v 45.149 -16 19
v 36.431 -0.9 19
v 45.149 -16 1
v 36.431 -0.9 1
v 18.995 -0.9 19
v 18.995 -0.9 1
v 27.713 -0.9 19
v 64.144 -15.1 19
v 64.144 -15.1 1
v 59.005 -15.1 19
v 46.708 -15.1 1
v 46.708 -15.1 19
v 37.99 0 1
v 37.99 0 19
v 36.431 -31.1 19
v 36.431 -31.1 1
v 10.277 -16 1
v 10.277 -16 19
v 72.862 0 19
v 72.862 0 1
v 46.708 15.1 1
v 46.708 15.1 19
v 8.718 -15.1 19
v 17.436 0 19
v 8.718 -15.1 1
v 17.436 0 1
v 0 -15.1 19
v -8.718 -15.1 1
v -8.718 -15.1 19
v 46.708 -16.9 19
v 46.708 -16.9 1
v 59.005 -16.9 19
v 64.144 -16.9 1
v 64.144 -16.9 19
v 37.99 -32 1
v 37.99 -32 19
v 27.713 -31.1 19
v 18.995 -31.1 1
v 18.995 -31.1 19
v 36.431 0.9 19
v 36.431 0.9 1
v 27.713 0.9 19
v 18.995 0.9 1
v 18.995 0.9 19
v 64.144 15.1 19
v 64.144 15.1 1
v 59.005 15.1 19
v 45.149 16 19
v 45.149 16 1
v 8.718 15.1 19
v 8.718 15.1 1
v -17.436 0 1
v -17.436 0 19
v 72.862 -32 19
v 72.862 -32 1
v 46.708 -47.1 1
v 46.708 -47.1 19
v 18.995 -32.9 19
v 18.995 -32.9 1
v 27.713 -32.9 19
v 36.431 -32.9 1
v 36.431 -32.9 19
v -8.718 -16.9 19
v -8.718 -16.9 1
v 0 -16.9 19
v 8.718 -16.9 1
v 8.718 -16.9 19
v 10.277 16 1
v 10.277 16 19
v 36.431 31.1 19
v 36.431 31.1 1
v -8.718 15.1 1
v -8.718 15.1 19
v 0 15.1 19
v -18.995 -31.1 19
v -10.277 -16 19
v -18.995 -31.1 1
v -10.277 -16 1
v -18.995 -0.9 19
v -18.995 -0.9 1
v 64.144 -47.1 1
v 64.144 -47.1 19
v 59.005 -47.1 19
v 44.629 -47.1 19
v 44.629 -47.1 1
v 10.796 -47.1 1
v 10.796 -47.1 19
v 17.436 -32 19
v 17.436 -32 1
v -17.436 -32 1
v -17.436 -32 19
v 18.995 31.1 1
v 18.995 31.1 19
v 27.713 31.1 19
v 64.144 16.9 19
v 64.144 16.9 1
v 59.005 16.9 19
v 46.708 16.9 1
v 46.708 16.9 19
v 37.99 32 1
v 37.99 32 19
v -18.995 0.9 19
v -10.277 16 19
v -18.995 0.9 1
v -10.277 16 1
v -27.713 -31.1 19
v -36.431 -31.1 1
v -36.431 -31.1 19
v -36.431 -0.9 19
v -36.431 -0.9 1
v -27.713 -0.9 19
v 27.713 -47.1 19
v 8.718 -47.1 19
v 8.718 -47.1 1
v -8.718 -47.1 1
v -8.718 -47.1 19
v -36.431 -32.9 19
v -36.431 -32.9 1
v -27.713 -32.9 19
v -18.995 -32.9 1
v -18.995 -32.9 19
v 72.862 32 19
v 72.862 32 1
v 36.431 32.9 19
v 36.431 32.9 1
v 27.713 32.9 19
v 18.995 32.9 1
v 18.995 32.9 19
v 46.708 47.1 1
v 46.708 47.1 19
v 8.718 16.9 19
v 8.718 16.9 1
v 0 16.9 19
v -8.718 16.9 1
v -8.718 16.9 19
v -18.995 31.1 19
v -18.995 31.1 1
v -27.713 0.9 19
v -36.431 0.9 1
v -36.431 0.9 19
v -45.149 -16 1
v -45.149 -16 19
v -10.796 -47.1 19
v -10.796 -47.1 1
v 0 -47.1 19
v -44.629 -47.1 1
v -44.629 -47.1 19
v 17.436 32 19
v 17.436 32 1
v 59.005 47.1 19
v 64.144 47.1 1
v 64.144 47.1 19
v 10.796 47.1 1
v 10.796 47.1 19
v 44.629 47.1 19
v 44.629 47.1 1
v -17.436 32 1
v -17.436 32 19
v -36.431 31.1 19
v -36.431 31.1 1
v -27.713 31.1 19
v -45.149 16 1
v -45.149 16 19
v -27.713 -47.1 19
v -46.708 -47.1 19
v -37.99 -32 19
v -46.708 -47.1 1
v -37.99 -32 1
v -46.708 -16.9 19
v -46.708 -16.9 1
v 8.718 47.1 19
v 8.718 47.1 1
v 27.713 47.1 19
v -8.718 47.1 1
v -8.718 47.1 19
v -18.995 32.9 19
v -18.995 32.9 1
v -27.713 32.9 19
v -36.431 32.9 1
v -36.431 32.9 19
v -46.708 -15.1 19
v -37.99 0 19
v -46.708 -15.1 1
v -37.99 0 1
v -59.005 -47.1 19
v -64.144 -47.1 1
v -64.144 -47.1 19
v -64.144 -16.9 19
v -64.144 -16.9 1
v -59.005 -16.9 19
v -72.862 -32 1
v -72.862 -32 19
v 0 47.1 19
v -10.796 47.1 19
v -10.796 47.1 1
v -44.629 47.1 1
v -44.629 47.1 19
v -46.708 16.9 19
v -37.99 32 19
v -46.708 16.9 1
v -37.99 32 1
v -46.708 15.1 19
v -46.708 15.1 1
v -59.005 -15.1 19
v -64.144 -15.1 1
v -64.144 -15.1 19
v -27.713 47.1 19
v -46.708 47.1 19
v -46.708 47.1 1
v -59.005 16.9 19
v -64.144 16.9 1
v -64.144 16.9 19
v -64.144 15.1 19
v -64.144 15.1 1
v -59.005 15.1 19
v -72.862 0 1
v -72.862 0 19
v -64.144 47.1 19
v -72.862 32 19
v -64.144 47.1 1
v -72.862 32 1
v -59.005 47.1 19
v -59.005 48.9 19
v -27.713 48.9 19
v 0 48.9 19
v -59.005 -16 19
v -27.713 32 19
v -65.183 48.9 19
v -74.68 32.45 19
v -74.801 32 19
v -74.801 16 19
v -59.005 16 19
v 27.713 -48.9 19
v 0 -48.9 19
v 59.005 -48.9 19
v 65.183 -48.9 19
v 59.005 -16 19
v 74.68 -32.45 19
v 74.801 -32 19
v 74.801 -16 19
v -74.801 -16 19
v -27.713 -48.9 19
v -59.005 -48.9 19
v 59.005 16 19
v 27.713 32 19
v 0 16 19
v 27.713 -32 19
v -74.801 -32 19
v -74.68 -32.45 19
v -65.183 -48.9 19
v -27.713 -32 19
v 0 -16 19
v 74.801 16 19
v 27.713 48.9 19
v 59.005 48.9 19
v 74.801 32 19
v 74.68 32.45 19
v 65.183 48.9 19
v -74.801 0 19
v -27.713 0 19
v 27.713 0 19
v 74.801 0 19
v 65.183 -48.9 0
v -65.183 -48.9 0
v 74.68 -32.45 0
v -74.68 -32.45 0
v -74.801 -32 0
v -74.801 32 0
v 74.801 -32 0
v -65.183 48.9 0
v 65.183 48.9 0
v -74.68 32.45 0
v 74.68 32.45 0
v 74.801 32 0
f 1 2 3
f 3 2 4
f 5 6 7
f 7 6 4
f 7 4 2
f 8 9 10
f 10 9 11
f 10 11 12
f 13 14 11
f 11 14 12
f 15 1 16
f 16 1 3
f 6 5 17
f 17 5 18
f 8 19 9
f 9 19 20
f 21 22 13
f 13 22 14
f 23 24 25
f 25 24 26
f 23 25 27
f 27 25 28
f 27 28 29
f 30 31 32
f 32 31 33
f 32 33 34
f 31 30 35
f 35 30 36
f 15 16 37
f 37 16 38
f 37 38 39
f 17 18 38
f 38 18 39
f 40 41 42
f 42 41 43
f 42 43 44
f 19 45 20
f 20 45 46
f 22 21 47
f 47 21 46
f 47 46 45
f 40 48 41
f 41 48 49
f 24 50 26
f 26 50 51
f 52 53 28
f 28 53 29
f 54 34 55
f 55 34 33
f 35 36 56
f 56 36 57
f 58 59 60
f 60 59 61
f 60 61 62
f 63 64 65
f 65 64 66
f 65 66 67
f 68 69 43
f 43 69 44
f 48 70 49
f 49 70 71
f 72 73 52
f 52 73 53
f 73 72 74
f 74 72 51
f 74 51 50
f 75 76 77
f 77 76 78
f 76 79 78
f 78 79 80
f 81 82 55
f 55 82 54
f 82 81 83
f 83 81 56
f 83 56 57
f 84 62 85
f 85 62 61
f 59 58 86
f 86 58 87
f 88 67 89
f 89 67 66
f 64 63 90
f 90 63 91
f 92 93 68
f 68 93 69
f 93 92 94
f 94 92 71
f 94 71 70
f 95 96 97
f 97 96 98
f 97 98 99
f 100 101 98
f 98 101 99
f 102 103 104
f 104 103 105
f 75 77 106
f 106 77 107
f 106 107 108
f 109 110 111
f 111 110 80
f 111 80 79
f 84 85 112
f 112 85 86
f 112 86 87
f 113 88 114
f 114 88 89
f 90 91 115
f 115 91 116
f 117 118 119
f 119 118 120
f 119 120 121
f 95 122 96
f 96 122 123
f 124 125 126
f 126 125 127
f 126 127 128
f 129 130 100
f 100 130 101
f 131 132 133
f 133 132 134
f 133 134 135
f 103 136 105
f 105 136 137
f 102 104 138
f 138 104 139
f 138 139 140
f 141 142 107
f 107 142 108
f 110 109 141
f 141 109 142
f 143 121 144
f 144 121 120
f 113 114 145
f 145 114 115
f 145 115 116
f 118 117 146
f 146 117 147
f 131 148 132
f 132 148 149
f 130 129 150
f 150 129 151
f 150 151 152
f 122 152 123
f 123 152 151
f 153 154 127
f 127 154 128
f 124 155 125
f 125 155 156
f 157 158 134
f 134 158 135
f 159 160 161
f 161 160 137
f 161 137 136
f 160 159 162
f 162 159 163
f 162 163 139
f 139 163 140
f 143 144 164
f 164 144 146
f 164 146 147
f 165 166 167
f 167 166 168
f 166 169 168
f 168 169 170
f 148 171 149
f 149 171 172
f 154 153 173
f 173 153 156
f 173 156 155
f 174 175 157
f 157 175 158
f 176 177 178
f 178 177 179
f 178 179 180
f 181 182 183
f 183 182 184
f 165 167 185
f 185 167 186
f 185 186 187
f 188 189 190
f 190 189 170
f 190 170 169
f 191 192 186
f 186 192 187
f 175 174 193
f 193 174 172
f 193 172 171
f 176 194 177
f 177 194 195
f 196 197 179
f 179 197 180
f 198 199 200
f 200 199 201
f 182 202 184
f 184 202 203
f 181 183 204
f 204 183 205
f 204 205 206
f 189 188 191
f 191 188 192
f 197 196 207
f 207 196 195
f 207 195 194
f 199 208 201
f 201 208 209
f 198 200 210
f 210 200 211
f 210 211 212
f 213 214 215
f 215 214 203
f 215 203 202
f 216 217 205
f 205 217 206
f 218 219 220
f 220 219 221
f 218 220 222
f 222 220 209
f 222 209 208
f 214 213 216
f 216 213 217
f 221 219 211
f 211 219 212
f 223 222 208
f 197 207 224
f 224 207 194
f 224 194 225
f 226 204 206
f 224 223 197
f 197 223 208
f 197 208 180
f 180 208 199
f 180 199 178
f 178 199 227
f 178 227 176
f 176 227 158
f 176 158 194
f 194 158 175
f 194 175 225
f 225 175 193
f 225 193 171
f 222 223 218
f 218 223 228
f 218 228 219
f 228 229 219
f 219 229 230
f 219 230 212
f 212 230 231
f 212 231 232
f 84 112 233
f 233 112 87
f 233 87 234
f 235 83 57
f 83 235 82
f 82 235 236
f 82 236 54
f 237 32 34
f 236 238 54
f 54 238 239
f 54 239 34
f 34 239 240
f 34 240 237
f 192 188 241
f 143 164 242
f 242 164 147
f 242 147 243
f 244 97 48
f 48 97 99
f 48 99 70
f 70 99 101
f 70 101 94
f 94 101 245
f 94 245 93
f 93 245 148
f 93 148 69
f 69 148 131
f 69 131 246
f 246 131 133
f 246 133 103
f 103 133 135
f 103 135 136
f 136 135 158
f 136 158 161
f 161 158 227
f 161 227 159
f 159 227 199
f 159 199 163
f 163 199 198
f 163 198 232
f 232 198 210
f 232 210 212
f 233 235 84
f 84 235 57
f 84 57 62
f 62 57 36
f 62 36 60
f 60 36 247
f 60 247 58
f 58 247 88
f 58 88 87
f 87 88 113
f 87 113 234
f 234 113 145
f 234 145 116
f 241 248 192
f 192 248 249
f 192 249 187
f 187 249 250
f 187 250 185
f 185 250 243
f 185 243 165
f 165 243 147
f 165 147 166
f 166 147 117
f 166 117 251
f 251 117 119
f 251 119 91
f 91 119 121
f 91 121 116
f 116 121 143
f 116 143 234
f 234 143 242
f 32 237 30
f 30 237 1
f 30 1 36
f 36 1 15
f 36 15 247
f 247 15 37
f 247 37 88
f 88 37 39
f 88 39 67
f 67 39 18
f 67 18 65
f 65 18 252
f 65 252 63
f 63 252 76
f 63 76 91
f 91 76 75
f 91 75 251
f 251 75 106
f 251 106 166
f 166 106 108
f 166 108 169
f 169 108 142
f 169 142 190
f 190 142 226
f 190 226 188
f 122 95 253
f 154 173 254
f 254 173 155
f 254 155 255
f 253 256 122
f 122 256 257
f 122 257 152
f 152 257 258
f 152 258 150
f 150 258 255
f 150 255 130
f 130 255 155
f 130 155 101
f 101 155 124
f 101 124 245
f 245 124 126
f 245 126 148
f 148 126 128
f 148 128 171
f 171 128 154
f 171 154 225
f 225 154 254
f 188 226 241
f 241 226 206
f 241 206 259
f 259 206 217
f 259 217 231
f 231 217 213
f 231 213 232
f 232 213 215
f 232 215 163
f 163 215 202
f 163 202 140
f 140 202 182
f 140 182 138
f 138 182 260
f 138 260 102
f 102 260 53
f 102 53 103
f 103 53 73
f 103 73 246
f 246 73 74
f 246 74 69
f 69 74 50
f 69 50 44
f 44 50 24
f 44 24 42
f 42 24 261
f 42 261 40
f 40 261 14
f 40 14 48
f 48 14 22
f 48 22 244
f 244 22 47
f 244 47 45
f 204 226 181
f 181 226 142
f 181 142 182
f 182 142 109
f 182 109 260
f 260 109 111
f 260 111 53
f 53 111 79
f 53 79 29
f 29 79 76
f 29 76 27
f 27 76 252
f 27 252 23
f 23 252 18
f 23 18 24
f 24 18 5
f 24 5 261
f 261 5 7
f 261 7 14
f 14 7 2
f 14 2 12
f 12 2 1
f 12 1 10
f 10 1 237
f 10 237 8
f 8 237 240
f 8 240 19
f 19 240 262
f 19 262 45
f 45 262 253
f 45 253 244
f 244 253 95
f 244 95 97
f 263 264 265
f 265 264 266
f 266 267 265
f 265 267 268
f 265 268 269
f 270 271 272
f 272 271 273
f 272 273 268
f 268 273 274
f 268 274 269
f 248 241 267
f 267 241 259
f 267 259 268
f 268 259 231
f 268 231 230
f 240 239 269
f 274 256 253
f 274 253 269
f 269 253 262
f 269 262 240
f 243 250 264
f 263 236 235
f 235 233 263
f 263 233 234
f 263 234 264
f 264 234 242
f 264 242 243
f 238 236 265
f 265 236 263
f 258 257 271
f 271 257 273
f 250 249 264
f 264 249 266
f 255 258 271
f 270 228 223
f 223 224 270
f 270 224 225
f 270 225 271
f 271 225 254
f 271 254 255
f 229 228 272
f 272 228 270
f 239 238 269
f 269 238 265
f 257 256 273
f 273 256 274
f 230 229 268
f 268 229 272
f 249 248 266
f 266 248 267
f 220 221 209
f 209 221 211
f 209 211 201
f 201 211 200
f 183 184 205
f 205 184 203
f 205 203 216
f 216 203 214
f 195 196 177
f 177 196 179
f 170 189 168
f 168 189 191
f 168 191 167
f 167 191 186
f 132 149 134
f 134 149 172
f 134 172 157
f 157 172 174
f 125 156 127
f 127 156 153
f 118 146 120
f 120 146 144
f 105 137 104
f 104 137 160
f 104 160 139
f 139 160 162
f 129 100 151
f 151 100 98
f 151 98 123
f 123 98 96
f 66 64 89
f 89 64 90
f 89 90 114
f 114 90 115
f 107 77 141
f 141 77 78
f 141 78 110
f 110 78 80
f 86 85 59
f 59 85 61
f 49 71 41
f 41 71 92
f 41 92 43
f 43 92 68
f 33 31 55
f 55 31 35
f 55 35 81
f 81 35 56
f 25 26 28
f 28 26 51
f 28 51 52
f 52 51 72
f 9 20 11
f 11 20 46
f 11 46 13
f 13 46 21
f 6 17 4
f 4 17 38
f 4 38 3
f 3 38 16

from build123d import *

# Parameters (mm, degrees)
EXTRUDE_THIN2_DEPTH = 19
BOSS_EXTRUDE1_DEPTH = 19
BOSS_EXTRUDE2_DEPTH = 1
BOSS_EXTRUDE4_DEPTH = 18


# Read off the part's stored shape, not the designer's step: Extrude-Thin2
with BuildPart() as part:
    # Extrude-Thin2 outline → Extrude-Thin2 (new body)
    with BuildSketch(Plane.XY):
        Polygon((-74.68025732, 32.45), (-73.900834456, 32), (-74.800834456, 32), (-74.800834456, -32), (-73.900834456, -32), (-74.68025732, -32.45), (-65.182845391, -48.9), (65.182845392, -48.9), (74.68025732, -32.45), (73.900834456, -32), (74.800834456, -32), (74.800834456, 32), (73.900834456, 32), (74.68025732, 32.45), (65.182845392, 48.9), (-65.182845392, 48.9), align=None)
        Polygon((-37.989647713, -32), (-46.707636777, -47.1), (-64.143614907, -47.1), (-72.861603972, -32), (-64.143614907, -16.9), (-46.707636777, -16.9), align=None, mode=Mode.SUBTRACT)
        Polygon((-36.430801986, -32.9), (-18.994823856, -32.9), (-10.796450034, -47.1), (-44.629175808, -47.1), align=None, mode=Mode.SUBTRACT)
        Polygon((-73.000834456, -3.358845727), (-65.702460634, -16), (-73.000834456, -28.641154273), align=None, mode=Mode.SUBTRACT)
        Polygon((-10.276834792, -16), (-18.994823856, -31.1), (-36.430801986, -31.1), (-45.148791051, -16), (-36.430801986, -0.9), (-18.994823856, -0.9), align=None, mode=Mode.SUBTRACT)
        Polygon((10.796450034, -47.1), (18.994823856, -32.9), (36.430801986, -32.9), (44.629175808, -47.1), align=None, mode=Mode.SUBTRACT)
        Polygon((-8.717989065, -16.9), (8.717989065, -16.9), (17.43597813, -32), (8.717989065, -47.1), (-8.717989065, -47.1), (-17.435978129, -32), align=None, mode=Mode.SUBTRACT)
        Polygon((46.707636777, -16.9), (64.143614907, -16.9), (72.861603972, -32), (64.143614907, -47.1), (46.707636777, -47.1), (37.989647713, -32), align=None, mode=Mode.SUBTRACT)
        Polygon((36.430801986, -0.9), (45.148791051, -16), (36.430801986, -31.1), (18.994823856, -31.1), (10.276834792, -16), (18.994823856, -0.9), align=None, mode=Mode.SUBTRACT)
        Polygon((73.000834456, -28.641154273), (65.702460634, -16), (73.000834456, -3.358845727), align=None, mode=Mode.SUBTRACT)
        Polygon((-37.989647713, 0), (-46.707636777, -15.1), (-64.143614907, -15.1), (-72.861603972, 0), (-64.143614907, 15.1), (-46.707636777, 15.1), align=None, mode=Mode.SUBTRACT)
        Polygon((-65.702460634, 16), (-73.000834456, 3.358845727), (-73.000834456, 28.641154273), align=None, mode=Mode.SUBTRACT)
        Polygon((-10.276834792, 16), (-18.994823856, 0.9), (-36.430801986, 0.9), (-45.148791051, 16), (-36.430801986, 31.1), (-18.994823856, 31.1), align=None, mode=Mode.SUBTRACT)
        Polygon((-37.989647713, 32), (-46.707636777, 16.9), (-64.143614907, 16.9), (-72.861603972, 32), (-64.143614907, 47.1), (-46.707636777, 47.1), align=None, mode=Mode.SUBTRACT)
        Polygon((-10.796450034, 47.1), (-18.994823856, 32.9), (-36.430801986, 32.9), (-44.629175808, 47.1), align=None, mode=Mode.SUBTRACT)
        Polygon((17.43597813, 0), (8.717989065, -15.1), (-8.717989065, -15.1), (-17.43597813, 0), (-8.717989065, 15.1), (8.717989065, 15.1), align=None, mode=Mode.SUBTRACT)
        Polygon((36.430801986, 0.9), (18.994823856, 0.9), (10.276834792, 16), (18.994823856, 31.1), (36.430801986, 31.1), (45.148791051, 16), align=None, mode=Mode.SUBTRACT)
        Polygon((72.861603972, 0), (64.143614907, -15.1), (46.707636777, -15.1), (37.989647713, 0), (46.707636777, 15.1), (64.143614907, 15.1), align=None, mode=Mode.SUBTRACT)
        Polygon((73.000834456, 28.641154273), (73.000834456, 3.358845727), (65.702460634, 16), align=None, mode=Mode.SUBTRACT)
        Polygon((17.43597813, 32), (8.717989065, 16.9), (-8.717989065, 16.9), (-17.43597813, 32), (-8.717989065, 47.1), (8.717989065, 47.1), align=None, mode=Mode.SUBTRACT)
        Polygon((36.430801986, 32.9), (18.994823856, 32.9), (10.796450034, 47.1), (44.629175808, 47.1), align=None, mode=Mode.SUBTRACT)
        Polygon((72.861603972, 32), (64.143614907, 16.9), (46.707636777, 16.9), (37.989647713, 32), (46.707636777, 47.1), (64.143614907, 47.1), align=None, mode=Mode.SUBTRACT)
    extrude(amount=EXTRUDE_THIN2_DEPTH)

    # Sketch2 → Boss-Extrude1 (add)
    with BuildSketch(Plane.XY.offset(19)):
        Polygon((73.900834456, -32), (74.68025732, -32.45), (74.800834456, -32), align=None)
        Polygon((74.68025732, 32.45), (74.800834456, 32), (73.900834456, 32), align=None)
        Polygon((-74.68025732, 32.45), (-74.800834456, 32), (-73.900834456, 32), align=None)
        Polygon((-74.68025732, -32.45), (-73.900834456, -32), (-74.800834456, -32), align=None)
    extrude(amount=-BOSS_EXTRUDE1_DEPTH)

    # Sketch3 → Boss-Extrude2 (add)
    with BuildSketch(Plane(origin=(0, 0, 0), x_dir=(-1, 0, 0), z_dir=(0, 0, -1))):
        Polygon((-74.68025732, 32.45), (-74.800834456, 32), (-74.800834456, -32), (-74.68025732, -32.45), (-65.182845392, -48.9), (65.182845391, -48.9), (74.68025732, -32.45), (74.800834456, -32), (74.800834456, 32), (74.68025732, 32.45), (65.182845392, 48.9), (-65.182845392, 48.9), align=None)
    extrude(amount=-BOSS_EXTRUDE2_DEPTH)

    # Sketch5 → Boss-Extrude4 (add)
    with BuildSketch(Plane.XY.offset(1)):
        Polygon((-73.000834456, 28.641154273), (-73.000834456, 3.358845727), (-65.702460634, 16), align=None)
        Polygon((-73.000834456, -28.641154273), (-65.702460634, -16), (-73.000834456, -3.358845727), align=None)
        Polygon((65.702460634, 16), (73.000834456, 3.358845727), (73.000834456, 28.641154273), align=None)
        Polygon((73.000834456, -3.358845727), (65.702460634, -16), (73.000834456, -28.641154273), align=None)
    extrude(amount=BOSS_EXTRUDE4_DEPTH)


solid = part.part
